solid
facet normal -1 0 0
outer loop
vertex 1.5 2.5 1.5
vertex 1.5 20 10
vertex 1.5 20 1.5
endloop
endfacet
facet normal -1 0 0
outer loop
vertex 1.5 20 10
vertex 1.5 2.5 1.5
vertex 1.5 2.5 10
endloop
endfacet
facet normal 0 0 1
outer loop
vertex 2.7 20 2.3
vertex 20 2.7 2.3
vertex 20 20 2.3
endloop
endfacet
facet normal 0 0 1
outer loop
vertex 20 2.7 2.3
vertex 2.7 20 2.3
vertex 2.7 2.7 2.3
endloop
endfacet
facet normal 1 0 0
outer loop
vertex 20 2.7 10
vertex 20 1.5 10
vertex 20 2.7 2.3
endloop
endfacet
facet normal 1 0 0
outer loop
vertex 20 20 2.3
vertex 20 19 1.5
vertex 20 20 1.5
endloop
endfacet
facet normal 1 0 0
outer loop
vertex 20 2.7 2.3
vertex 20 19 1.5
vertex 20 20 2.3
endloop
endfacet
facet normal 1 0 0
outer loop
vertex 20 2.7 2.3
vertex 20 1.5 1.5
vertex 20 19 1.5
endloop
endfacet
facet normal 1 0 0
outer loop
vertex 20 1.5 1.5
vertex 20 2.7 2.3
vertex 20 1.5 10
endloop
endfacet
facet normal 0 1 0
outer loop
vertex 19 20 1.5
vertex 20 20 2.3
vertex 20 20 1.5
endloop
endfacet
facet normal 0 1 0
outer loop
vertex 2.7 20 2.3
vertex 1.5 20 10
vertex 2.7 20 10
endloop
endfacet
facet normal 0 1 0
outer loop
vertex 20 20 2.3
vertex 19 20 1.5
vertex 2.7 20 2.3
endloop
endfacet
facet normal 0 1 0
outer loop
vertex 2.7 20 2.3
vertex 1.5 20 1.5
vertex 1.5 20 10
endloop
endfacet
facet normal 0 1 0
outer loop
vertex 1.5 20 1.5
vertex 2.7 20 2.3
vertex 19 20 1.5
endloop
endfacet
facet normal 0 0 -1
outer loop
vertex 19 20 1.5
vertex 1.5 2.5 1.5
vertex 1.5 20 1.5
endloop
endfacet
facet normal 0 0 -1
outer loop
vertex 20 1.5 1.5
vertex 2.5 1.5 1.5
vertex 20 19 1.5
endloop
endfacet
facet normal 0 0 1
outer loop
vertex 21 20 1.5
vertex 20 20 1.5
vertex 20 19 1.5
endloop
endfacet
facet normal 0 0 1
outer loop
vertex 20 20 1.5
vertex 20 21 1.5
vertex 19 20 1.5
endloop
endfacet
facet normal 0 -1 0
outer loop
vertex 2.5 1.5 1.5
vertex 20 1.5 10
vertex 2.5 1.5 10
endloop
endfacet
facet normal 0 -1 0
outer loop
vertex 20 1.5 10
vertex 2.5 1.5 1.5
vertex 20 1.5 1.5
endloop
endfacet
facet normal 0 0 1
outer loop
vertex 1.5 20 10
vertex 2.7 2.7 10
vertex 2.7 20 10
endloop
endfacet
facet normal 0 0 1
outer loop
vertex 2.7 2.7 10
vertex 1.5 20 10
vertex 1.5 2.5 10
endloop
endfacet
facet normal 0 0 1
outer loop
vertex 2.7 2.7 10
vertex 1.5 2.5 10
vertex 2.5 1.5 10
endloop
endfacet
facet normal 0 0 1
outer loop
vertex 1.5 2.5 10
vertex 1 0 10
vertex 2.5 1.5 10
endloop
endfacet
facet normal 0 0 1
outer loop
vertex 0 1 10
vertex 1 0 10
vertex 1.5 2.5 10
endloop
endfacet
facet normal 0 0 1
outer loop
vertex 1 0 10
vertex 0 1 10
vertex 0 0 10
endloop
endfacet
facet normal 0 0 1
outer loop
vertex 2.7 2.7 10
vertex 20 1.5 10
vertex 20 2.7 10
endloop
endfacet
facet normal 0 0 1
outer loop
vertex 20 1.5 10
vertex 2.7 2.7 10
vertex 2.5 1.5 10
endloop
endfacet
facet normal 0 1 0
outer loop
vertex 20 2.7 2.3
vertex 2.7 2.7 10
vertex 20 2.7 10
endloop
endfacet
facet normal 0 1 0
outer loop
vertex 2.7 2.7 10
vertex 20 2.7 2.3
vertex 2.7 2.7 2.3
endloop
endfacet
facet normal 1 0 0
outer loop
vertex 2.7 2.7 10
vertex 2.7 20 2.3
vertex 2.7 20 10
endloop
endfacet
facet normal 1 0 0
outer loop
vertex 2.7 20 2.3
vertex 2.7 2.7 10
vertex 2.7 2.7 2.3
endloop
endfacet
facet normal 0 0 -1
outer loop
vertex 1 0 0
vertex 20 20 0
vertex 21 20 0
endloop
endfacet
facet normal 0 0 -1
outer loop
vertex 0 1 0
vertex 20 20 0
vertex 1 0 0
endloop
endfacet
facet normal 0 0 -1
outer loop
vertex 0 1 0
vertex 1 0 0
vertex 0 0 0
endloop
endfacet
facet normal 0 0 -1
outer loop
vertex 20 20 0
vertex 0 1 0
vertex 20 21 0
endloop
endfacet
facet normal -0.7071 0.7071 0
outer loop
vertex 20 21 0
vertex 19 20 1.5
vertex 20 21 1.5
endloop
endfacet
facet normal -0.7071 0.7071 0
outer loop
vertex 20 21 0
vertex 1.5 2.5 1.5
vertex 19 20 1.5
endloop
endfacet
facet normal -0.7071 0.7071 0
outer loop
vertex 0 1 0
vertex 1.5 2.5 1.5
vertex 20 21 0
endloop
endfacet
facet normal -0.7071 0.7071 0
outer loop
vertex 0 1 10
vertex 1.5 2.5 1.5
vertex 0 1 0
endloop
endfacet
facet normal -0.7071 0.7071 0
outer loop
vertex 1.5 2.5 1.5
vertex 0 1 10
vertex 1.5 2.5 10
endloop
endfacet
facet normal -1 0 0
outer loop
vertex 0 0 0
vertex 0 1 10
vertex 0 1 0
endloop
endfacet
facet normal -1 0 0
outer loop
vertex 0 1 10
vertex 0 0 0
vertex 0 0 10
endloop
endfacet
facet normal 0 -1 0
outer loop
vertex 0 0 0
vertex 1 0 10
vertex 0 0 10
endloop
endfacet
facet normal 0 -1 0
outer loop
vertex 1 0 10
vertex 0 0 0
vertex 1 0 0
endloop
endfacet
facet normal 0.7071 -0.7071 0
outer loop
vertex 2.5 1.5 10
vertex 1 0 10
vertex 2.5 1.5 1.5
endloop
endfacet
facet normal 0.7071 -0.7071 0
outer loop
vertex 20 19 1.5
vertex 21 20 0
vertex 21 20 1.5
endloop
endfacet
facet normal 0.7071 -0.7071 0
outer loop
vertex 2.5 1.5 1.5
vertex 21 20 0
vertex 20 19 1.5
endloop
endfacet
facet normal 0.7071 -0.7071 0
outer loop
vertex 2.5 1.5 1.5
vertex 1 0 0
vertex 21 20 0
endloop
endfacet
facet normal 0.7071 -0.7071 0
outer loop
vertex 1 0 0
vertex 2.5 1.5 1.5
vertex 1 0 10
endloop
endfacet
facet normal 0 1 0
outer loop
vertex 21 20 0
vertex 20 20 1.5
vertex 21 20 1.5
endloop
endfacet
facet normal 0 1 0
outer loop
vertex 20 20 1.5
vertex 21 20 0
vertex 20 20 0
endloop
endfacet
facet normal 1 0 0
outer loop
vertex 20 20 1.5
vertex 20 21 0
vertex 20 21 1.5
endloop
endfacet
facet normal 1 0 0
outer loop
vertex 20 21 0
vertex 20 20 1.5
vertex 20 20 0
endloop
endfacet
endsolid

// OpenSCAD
profile_thickness = 1.5;
profile_width = 20;
profile_height = 10;
profile_length = 30;

module l_profile() {
    cube([profile_length, profile_width, profile_thickness]);
    cube([profile_length, profile_thickness, profile_height]);
}

module l_profile_angled_1() {
    difference() {
        l_profile();
        linear_extrude(height = profile_height)
            polygon([[0,0], [0, profile_width], [profile_width, profile_width]]);
    }
}

module l_profile_angled_2() {
    difference() {
        l_profile();
        linear_extrude(height = profile_height)
            polygon([[30,0], [30, profile_width], [30 - profile_width, profile_width]]);        
    }
}

module joiner() {
    linear_extrude(height = profile_height)
        polygon([
            [0,0], 
            [0,1], 
            [profile_thickness, 1 + profile_thickness], 
            [profile_thickness, profile_thickness], 
            [1 + profile_thickness, profile_thickness], 
            [1,0]]);
    linear_extrude(height = profile_thickness)
        polygon([
            [profile_thickness, 1 + profile_thickness], 
            [profile_width, profile_width + 1], 
            [profile_width, profile_width],
            [profile_width + 1, profile_width], 
            [profile_thickness + 1, profile_thickness], 
            [profile_thickness, profile_thickness]]);
    translate([profile_thickness, profile_thickness, profile_thickness]) {
        cube([profile_width - profile_thickness, profile_width - profile_thickness, 0.8]);
        cube([profile_width - profile_thickness, 1.2, profile_height - profile_thickness]);
        cube([1.2, profile_width - profile_thickness, profile_height - profile_thickness]);
    }    
}

//#translate([1, 0, 0]) l_profile_angled_1();
//#translate([0, 31, 0]) rotate([0, 0, -90]) l_profile_angled_2();


joiner();
